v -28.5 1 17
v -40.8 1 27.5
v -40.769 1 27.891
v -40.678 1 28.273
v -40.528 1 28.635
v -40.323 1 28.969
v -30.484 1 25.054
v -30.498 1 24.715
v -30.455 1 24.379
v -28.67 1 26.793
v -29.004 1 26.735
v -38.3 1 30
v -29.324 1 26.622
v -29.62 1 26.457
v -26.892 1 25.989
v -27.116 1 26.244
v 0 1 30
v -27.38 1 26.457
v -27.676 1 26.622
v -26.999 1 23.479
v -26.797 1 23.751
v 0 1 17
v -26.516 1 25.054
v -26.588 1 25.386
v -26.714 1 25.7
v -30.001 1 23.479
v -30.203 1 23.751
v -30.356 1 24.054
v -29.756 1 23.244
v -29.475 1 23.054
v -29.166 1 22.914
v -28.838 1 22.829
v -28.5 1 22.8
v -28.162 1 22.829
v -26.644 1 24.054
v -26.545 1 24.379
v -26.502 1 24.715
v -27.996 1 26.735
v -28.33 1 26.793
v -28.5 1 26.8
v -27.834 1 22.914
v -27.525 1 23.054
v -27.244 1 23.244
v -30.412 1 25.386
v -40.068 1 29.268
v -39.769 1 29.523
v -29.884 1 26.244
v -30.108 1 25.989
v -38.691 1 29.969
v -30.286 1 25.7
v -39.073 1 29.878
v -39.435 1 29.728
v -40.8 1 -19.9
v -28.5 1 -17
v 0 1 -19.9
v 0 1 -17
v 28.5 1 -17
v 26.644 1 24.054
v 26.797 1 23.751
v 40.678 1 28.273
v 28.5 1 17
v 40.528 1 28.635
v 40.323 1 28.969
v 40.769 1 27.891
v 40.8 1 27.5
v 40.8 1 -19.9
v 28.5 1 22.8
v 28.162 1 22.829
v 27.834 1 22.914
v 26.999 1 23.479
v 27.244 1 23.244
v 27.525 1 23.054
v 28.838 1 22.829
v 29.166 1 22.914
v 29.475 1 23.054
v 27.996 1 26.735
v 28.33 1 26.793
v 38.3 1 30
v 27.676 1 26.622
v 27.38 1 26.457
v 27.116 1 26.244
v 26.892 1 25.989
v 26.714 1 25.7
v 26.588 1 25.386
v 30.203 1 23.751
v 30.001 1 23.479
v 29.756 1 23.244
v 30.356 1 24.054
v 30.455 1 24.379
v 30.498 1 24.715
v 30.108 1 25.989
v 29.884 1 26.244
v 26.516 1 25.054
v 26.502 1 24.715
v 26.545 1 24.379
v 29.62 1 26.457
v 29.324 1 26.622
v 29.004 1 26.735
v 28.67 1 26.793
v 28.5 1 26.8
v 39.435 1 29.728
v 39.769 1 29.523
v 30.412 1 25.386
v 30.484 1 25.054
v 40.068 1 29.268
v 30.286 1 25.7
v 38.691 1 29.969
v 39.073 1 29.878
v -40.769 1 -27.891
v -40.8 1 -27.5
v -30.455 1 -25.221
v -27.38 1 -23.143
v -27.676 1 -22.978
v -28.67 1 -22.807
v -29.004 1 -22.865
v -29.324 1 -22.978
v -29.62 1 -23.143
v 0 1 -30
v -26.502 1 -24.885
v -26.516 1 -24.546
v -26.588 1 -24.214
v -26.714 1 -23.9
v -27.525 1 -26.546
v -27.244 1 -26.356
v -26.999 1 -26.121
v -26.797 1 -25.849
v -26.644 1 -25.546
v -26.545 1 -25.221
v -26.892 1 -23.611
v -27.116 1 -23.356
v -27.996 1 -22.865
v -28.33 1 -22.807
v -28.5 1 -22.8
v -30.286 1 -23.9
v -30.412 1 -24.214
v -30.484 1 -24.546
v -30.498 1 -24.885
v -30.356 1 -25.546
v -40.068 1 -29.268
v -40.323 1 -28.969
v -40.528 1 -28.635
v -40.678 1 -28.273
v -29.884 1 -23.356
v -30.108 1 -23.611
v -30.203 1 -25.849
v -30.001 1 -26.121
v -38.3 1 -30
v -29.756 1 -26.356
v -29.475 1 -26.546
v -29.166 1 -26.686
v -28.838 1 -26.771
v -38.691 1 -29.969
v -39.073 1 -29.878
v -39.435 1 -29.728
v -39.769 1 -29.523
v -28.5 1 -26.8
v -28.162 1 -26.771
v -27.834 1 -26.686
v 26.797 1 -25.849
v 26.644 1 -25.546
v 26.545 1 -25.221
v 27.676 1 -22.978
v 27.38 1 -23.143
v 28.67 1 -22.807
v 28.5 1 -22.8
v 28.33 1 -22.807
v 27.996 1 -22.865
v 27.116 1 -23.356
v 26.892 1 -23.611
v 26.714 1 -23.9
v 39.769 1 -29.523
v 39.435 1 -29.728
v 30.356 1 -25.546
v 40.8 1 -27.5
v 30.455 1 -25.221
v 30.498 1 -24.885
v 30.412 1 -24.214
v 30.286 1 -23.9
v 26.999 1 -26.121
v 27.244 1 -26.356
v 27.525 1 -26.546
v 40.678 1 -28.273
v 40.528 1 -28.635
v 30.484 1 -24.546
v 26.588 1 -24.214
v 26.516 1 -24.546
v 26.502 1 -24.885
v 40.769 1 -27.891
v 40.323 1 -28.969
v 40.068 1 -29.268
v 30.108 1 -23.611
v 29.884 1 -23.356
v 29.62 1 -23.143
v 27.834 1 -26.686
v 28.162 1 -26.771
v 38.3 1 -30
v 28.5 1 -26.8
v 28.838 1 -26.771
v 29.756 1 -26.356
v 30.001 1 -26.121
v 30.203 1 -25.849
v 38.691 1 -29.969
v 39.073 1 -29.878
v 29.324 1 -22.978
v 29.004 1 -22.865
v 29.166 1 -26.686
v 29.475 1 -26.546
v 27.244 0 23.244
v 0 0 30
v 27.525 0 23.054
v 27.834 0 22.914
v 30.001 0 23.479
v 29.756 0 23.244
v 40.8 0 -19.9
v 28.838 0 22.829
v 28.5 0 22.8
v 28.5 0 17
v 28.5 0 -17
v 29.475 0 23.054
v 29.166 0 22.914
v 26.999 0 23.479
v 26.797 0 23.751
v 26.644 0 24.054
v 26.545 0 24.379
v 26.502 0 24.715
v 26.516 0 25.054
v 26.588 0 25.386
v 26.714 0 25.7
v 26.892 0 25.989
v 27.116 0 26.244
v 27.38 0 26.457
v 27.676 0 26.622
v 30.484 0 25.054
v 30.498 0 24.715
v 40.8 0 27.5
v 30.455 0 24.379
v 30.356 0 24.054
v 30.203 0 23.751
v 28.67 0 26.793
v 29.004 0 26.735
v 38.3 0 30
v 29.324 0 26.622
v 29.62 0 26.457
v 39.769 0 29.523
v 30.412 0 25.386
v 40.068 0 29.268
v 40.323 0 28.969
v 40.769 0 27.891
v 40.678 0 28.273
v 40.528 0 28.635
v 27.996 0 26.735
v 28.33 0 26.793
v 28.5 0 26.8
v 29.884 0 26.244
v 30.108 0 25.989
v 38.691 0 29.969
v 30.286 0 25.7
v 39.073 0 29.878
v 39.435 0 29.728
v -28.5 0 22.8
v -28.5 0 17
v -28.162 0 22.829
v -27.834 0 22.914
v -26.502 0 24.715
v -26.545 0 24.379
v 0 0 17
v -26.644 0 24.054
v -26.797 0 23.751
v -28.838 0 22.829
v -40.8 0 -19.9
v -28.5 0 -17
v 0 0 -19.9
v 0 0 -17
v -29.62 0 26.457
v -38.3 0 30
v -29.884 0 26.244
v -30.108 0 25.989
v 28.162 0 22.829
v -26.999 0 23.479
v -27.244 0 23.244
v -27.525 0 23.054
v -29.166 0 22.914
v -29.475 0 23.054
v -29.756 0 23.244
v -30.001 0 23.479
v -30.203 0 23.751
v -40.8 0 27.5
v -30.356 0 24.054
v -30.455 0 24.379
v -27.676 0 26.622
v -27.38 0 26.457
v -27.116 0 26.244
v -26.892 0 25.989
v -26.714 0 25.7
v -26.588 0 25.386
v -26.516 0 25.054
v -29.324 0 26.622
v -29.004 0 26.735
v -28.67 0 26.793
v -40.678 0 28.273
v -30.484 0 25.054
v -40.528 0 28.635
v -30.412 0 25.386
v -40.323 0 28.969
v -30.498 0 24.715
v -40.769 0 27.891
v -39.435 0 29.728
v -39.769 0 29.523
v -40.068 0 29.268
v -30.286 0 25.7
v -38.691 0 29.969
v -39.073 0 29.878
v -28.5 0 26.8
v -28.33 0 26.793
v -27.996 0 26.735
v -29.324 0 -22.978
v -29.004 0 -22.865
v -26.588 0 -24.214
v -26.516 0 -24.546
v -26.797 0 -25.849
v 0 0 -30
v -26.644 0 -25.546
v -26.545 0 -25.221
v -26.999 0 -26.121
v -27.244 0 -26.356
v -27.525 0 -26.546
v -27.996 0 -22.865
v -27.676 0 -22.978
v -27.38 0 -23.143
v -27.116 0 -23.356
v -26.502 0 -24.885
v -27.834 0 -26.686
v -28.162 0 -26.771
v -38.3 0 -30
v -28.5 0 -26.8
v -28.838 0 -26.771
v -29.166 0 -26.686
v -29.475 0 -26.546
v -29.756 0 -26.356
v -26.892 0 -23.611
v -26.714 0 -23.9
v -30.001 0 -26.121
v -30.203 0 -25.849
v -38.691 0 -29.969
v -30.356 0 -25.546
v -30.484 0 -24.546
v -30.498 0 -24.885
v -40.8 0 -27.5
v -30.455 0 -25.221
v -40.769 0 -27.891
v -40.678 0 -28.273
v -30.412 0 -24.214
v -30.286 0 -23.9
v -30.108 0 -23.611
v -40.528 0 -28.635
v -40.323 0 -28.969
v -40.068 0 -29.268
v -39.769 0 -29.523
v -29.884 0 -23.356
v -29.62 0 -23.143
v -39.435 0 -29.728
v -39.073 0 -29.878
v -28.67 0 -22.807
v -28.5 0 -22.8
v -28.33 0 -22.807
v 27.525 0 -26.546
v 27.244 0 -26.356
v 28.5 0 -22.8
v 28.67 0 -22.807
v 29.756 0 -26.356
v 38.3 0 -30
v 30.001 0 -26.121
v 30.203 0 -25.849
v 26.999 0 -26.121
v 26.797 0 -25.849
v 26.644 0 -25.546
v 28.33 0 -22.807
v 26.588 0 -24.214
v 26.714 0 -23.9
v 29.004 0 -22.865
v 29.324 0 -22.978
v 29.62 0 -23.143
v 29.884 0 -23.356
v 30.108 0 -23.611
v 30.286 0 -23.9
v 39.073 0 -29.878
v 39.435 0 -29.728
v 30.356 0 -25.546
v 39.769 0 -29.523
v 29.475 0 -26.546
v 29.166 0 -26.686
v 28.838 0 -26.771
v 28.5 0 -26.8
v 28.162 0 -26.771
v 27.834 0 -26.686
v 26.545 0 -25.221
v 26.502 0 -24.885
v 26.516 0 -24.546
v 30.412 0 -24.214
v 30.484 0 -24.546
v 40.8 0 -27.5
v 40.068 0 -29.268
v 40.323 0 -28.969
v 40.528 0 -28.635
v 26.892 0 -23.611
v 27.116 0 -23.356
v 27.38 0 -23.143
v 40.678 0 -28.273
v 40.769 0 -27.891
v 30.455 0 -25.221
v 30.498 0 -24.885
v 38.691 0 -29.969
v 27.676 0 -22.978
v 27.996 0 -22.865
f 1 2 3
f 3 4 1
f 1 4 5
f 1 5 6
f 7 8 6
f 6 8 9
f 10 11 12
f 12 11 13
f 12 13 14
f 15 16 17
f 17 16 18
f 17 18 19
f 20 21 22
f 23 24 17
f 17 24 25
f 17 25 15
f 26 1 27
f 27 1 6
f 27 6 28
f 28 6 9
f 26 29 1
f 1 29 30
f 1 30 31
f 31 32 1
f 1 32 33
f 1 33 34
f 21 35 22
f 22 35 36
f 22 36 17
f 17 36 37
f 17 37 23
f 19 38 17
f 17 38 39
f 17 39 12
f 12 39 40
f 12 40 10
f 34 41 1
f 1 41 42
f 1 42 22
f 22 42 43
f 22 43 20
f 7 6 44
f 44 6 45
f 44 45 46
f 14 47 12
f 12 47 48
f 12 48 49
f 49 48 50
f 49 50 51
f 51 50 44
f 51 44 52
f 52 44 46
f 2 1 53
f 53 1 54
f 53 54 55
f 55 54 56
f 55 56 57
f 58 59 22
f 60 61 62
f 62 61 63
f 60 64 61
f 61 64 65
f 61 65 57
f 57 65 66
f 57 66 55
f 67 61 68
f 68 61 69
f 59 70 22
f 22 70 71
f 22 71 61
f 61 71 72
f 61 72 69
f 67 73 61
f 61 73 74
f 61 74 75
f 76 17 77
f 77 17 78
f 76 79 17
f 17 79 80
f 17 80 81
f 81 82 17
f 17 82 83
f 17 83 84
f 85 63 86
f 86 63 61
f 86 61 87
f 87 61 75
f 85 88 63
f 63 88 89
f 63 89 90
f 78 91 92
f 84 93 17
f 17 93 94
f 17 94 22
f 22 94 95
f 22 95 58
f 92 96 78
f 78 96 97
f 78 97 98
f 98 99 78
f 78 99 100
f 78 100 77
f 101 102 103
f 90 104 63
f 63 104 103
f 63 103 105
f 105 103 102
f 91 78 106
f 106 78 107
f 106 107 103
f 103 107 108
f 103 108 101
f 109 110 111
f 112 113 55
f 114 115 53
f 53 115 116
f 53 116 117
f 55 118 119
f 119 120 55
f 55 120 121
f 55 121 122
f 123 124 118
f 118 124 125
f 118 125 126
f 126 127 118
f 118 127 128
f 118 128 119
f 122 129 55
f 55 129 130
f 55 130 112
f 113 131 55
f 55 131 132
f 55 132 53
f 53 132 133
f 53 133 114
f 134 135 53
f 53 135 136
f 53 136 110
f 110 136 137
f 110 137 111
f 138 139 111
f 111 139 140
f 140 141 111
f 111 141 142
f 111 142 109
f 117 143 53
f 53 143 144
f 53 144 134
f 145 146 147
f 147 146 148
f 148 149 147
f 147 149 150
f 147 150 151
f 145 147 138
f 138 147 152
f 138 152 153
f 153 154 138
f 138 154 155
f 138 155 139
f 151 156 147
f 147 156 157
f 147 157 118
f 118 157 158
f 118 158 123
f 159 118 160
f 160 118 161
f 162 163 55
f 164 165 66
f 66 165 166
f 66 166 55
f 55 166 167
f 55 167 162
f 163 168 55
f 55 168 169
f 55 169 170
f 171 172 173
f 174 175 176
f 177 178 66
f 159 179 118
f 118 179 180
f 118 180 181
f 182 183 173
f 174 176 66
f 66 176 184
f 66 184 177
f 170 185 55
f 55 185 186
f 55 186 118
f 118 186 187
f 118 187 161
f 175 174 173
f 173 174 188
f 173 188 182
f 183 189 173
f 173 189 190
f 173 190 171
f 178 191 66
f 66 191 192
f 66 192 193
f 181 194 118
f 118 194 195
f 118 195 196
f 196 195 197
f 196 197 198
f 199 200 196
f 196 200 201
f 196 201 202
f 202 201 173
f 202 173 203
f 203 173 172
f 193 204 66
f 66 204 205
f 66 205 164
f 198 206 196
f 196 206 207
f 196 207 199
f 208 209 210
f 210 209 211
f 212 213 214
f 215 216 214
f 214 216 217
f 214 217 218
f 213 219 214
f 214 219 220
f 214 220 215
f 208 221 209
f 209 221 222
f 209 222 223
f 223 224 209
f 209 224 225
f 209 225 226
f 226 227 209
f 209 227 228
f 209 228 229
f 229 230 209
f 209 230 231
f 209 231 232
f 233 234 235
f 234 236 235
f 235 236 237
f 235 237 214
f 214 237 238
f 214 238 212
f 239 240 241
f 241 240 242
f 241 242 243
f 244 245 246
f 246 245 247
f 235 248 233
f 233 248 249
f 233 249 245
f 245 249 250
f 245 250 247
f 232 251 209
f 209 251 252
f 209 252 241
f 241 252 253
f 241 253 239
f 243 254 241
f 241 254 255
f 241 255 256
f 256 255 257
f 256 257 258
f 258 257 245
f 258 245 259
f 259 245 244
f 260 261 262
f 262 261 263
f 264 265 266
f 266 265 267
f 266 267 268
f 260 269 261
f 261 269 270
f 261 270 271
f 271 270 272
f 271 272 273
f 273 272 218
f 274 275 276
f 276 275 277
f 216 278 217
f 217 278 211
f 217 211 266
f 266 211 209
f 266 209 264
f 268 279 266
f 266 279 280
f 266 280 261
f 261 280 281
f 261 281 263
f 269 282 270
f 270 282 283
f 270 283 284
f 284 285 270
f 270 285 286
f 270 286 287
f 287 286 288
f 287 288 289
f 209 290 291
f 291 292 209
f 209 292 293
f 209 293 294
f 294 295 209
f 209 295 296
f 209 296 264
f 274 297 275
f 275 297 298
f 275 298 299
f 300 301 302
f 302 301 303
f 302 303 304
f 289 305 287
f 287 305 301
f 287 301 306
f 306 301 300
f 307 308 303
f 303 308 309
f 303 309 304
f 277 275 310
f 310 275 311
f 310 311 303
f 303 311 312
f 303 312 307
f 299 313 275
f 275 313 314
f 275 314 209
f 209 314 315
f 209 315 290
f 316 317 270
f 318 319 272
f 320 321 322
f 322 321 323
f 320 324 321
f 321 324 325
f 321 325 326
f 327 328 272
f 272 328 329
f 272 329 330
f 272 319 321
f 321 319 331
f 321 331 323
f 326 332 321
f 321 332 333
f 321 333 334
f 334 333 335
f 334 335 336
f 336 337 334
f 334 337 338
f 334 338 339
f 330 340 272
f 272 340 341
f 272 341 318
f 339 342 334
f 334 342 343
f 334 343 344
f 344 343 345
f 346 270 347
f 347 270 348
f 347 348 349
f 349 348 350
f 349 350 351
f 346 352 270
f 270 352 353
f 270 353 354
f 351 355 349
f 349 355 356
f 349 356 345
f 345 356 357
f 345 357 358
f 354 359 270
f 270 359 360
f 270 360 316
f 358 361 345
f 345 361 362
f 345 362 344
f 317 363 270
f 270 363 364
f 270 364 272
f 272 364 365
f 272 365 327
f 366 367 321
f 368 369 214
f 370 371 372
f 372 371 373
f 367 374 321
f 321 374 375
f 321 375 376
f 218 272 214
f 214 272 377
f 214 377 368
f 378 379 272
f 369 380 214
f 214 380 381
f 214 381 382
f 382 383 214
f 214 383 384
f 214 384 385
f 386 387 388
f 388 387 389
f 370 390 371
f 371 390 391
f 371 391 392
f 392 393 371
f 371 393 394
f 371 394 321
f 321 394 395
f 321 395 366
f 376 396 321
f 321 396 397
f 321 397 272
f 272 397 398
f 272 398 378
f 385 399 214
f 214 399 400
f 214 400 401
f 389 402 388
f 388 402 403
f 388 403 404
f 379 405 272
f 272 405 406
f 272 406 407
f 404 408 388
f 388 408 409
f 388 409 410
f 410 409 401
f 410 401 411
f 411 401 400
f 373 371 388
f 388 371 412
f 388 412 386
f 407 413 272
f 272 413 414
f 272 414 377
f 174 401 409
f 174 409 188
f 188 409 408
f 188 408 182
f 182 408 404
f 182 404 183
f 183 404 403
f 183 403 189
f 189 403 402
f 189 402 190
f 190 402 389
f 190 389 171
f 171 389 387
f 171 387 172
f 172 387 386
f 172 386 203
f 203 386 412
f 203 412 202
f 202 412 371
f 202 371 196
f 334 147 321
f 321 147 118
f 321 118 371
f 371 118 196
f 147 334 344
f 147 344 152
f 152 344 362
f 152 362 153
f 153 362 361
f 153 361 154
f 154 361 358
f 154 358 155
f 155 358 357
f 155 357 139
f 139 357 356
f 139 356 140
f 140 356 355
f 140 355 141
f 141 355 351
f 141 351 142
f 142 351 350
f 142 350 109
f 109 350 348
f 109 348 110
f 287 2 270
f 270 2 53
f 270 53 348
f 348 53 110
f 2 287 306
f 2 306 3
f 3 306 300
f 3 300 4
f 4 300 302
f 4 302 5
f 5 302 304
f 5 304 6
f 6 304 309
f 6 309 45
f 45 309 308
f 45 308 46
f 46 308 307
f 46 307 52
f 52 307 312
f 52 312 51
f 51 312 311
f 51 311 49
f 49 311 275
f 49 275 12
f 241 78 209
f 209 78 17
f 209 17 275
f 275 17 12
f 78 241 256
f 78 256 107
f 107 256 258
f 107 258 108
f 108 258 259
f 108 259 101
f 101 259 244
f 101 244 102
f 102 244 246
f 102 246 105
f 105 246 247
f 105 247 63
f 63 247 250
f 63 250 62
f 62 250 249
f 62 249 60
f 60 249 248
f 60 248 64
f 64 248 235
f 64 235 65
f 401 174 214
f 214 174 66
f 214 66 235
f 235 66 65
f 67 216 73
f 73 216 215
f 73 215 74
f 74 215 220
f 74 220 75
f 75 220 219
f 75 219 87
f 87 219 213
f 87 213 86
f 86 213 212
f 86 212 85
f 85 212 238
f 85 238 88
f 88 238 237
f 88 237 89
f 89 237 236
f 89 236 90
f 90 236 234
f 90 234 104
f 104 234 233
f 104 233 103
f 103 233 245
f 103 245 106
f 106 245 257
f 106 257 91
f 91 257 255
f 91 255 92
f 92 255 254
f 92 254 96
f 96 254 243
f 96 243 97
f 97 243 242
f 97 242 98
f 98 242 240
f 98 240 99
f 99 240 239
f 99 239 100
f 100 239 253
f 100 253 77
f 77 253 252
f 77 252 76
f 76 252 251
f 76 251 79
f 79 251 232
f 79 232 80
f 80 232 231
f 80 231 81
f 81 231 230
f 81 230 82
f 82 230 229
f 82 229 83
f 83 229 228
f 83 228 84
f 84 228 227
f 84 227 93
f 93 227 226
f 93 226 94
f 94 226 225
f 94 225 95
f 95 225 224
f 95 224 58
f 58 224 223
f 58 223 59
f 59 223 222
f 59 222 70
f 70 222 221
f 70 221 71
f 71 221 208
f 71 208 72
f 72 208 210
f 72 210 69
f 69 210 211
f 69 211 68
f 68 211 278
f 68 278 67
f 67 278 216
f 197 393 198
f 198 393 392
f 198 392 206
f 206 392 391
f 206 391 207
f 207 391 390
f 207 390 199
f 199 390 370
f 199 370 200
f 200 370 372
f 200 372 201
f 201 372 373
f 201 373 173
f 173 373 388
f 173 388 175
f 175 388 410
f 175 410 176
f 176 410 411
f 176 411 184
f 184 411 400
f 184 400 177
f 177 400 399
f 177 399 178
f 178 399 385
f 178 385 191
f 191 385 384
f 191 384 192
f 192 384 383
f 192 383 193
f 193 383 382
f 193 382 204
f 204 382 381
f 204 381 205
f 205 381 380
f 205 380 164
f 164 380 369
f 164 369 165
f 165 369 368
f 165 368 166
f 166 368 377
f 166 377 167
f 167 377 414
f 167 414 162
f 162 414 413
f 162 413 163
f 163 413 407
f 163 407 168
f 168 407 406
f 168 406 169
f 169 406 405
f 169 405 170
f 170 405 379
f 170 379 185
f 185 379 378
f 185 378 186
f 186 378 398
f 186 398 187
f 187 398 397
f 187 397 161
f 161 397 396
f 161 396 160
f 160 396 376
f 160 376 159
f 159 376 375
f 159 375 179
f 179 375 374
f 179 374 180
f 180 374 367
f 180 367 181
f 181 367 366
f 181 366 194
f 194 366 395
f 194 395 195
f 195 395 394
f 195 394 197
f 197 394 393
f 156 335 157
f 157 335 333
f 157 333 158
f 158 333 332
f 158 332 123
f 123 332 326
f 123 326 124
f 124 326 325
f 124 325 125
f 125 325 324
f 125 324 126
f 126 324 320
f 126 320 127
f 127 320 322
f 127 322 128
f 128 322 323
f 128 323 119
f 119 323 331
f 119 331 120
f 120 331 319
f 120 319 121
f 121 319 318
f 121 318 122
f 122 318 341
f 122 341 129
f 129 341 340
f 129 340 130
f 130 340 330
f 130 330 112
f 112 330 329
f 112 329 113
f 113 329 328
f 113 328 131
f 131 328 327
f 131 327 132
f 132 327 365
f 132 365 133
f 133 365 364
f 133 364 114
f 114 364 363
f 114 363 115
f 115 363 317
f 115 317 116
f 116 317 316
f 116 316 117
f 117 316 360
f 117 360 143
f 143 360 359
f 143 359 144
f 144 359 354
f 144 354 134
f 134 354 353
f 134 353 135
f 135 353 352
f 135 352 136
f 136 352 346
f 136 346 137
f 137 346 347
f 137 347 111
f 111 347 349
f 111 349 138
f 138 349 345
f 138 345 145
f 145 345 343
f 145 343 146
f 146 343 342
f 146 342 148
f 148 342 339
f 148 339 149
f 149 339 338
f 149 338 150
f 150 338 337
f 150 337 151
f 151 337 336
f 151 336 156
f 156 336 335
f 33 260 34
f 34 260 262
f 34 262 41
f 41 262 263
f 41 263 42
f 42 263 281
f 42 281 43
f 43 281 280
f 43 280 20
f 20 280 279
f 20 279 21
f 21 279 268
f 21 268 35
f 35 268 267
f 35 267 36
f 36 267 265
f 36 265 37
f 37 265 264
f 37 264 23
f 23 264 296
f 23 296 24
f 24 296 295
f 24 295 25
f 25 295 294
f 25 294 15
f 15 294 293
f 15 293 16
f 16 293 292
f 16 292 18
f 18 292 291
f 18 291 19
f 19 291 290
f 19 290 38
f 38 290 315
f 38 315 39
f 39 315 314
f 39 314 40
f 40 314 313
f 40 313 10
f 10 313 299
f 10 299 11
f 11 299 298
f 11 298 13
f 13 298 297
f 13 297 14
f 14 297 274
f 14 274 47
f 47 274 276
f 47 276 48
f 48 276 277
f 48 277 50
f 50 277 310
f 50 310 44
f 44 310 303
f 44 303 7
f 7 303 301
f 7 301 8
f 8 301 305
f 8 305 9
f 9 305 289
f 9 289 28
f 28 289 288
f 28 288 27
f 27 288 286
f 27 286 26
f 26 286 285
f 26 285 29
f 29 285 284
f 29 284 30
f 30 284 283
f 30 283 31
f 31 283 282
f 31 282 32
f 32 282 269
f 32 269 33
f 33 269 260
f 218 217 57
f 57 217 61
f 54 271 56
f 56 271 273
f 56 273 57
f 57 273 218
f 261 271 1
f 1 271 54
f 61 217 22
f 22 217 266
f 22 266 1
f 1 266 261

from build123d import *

# Parameters (mm, degrees)
CROQUIS1_R              = 2
SALIENTE_EXTRUIR2_DEPTH = 1
CORTAR_EXTRUIR2_REACH   = 3


with BuildPart() as part:
    # Croquis1 → Saliente-Extruir2 (new body)
    with BuildSketch(Plane(origin=(0, 0, 0), x_dir=(1, 0, 0), z_dir=(0, 1, 0))):
        with BuildLine():
            Line((40.8, 27.5), (40.8, -27.5))
            ThreePointArc((40.8, -27.5), (40.067766953, -29.267766953), (38.3, -30))
            Line((38.3, -30), (-38.3, -30))
            ThreePointArc((-38.3, -30), (-40.067766953, -29.267766953), (-40.8, -27.5))
            Line((-40.8, -27.5), (-40.8, 27.5))
            ThreePointArc((-40.8, 27.5), (-40.067766953, 29.267766953), (-38.3, 30))
            Line((-38.3, 30), (38.3, 30))
            ThreePointArc((38.3, 30), (40.067766953, 29.267766953), (40.8, 27.5))
        make_face()
        with Locations((28.5, -24.8)):
            Circle(CROQUIS1_R, mode=Mode.SUBTRACT)
        with Locations((28.5, 24.8)):
            Circle(CROQUIS1_R, mode=Mode.SUBTRACT)
        with Locations((-28.5, 24.8)):
            Circle(CROQUIS1_R, mode=Mode.SUBTRACT)
        with Locations((-28.5, -24.8)):
            Circle(CROQUIS1_R, mode=Mode.SUBTRACT)
    extrude(amount=SALIENTE_EXTRUIR2_DEPTH)

    # Croquis2 → Cortar-Extruir2 (cut, up to next)
    with BuildSketch(Plane(origin=(0, 0, 0), x_dir=(1, 0, 0), z_dir=(0, 1, 0)), mode=Mode.PRIVATE) as cortar_extruir2_sk1:
        Polygon((-28.5, 17), (28.5, 17), (28.5, -17), (-28.5, -17), (-28.5, -4), align=None)
    cortar_extruir2_tool1 = extrude(cortar_extruir2_sk1.sketch, amount=CORTAR_EXTRUIR2_REACH, mode=Mode.PRIVATE) & part.part
    add(cortar_extruir2_tool1.solids().sort_by_distance((0, 0, 0))[0], mode=Mode.SUBTRACT)


solid = part.part
